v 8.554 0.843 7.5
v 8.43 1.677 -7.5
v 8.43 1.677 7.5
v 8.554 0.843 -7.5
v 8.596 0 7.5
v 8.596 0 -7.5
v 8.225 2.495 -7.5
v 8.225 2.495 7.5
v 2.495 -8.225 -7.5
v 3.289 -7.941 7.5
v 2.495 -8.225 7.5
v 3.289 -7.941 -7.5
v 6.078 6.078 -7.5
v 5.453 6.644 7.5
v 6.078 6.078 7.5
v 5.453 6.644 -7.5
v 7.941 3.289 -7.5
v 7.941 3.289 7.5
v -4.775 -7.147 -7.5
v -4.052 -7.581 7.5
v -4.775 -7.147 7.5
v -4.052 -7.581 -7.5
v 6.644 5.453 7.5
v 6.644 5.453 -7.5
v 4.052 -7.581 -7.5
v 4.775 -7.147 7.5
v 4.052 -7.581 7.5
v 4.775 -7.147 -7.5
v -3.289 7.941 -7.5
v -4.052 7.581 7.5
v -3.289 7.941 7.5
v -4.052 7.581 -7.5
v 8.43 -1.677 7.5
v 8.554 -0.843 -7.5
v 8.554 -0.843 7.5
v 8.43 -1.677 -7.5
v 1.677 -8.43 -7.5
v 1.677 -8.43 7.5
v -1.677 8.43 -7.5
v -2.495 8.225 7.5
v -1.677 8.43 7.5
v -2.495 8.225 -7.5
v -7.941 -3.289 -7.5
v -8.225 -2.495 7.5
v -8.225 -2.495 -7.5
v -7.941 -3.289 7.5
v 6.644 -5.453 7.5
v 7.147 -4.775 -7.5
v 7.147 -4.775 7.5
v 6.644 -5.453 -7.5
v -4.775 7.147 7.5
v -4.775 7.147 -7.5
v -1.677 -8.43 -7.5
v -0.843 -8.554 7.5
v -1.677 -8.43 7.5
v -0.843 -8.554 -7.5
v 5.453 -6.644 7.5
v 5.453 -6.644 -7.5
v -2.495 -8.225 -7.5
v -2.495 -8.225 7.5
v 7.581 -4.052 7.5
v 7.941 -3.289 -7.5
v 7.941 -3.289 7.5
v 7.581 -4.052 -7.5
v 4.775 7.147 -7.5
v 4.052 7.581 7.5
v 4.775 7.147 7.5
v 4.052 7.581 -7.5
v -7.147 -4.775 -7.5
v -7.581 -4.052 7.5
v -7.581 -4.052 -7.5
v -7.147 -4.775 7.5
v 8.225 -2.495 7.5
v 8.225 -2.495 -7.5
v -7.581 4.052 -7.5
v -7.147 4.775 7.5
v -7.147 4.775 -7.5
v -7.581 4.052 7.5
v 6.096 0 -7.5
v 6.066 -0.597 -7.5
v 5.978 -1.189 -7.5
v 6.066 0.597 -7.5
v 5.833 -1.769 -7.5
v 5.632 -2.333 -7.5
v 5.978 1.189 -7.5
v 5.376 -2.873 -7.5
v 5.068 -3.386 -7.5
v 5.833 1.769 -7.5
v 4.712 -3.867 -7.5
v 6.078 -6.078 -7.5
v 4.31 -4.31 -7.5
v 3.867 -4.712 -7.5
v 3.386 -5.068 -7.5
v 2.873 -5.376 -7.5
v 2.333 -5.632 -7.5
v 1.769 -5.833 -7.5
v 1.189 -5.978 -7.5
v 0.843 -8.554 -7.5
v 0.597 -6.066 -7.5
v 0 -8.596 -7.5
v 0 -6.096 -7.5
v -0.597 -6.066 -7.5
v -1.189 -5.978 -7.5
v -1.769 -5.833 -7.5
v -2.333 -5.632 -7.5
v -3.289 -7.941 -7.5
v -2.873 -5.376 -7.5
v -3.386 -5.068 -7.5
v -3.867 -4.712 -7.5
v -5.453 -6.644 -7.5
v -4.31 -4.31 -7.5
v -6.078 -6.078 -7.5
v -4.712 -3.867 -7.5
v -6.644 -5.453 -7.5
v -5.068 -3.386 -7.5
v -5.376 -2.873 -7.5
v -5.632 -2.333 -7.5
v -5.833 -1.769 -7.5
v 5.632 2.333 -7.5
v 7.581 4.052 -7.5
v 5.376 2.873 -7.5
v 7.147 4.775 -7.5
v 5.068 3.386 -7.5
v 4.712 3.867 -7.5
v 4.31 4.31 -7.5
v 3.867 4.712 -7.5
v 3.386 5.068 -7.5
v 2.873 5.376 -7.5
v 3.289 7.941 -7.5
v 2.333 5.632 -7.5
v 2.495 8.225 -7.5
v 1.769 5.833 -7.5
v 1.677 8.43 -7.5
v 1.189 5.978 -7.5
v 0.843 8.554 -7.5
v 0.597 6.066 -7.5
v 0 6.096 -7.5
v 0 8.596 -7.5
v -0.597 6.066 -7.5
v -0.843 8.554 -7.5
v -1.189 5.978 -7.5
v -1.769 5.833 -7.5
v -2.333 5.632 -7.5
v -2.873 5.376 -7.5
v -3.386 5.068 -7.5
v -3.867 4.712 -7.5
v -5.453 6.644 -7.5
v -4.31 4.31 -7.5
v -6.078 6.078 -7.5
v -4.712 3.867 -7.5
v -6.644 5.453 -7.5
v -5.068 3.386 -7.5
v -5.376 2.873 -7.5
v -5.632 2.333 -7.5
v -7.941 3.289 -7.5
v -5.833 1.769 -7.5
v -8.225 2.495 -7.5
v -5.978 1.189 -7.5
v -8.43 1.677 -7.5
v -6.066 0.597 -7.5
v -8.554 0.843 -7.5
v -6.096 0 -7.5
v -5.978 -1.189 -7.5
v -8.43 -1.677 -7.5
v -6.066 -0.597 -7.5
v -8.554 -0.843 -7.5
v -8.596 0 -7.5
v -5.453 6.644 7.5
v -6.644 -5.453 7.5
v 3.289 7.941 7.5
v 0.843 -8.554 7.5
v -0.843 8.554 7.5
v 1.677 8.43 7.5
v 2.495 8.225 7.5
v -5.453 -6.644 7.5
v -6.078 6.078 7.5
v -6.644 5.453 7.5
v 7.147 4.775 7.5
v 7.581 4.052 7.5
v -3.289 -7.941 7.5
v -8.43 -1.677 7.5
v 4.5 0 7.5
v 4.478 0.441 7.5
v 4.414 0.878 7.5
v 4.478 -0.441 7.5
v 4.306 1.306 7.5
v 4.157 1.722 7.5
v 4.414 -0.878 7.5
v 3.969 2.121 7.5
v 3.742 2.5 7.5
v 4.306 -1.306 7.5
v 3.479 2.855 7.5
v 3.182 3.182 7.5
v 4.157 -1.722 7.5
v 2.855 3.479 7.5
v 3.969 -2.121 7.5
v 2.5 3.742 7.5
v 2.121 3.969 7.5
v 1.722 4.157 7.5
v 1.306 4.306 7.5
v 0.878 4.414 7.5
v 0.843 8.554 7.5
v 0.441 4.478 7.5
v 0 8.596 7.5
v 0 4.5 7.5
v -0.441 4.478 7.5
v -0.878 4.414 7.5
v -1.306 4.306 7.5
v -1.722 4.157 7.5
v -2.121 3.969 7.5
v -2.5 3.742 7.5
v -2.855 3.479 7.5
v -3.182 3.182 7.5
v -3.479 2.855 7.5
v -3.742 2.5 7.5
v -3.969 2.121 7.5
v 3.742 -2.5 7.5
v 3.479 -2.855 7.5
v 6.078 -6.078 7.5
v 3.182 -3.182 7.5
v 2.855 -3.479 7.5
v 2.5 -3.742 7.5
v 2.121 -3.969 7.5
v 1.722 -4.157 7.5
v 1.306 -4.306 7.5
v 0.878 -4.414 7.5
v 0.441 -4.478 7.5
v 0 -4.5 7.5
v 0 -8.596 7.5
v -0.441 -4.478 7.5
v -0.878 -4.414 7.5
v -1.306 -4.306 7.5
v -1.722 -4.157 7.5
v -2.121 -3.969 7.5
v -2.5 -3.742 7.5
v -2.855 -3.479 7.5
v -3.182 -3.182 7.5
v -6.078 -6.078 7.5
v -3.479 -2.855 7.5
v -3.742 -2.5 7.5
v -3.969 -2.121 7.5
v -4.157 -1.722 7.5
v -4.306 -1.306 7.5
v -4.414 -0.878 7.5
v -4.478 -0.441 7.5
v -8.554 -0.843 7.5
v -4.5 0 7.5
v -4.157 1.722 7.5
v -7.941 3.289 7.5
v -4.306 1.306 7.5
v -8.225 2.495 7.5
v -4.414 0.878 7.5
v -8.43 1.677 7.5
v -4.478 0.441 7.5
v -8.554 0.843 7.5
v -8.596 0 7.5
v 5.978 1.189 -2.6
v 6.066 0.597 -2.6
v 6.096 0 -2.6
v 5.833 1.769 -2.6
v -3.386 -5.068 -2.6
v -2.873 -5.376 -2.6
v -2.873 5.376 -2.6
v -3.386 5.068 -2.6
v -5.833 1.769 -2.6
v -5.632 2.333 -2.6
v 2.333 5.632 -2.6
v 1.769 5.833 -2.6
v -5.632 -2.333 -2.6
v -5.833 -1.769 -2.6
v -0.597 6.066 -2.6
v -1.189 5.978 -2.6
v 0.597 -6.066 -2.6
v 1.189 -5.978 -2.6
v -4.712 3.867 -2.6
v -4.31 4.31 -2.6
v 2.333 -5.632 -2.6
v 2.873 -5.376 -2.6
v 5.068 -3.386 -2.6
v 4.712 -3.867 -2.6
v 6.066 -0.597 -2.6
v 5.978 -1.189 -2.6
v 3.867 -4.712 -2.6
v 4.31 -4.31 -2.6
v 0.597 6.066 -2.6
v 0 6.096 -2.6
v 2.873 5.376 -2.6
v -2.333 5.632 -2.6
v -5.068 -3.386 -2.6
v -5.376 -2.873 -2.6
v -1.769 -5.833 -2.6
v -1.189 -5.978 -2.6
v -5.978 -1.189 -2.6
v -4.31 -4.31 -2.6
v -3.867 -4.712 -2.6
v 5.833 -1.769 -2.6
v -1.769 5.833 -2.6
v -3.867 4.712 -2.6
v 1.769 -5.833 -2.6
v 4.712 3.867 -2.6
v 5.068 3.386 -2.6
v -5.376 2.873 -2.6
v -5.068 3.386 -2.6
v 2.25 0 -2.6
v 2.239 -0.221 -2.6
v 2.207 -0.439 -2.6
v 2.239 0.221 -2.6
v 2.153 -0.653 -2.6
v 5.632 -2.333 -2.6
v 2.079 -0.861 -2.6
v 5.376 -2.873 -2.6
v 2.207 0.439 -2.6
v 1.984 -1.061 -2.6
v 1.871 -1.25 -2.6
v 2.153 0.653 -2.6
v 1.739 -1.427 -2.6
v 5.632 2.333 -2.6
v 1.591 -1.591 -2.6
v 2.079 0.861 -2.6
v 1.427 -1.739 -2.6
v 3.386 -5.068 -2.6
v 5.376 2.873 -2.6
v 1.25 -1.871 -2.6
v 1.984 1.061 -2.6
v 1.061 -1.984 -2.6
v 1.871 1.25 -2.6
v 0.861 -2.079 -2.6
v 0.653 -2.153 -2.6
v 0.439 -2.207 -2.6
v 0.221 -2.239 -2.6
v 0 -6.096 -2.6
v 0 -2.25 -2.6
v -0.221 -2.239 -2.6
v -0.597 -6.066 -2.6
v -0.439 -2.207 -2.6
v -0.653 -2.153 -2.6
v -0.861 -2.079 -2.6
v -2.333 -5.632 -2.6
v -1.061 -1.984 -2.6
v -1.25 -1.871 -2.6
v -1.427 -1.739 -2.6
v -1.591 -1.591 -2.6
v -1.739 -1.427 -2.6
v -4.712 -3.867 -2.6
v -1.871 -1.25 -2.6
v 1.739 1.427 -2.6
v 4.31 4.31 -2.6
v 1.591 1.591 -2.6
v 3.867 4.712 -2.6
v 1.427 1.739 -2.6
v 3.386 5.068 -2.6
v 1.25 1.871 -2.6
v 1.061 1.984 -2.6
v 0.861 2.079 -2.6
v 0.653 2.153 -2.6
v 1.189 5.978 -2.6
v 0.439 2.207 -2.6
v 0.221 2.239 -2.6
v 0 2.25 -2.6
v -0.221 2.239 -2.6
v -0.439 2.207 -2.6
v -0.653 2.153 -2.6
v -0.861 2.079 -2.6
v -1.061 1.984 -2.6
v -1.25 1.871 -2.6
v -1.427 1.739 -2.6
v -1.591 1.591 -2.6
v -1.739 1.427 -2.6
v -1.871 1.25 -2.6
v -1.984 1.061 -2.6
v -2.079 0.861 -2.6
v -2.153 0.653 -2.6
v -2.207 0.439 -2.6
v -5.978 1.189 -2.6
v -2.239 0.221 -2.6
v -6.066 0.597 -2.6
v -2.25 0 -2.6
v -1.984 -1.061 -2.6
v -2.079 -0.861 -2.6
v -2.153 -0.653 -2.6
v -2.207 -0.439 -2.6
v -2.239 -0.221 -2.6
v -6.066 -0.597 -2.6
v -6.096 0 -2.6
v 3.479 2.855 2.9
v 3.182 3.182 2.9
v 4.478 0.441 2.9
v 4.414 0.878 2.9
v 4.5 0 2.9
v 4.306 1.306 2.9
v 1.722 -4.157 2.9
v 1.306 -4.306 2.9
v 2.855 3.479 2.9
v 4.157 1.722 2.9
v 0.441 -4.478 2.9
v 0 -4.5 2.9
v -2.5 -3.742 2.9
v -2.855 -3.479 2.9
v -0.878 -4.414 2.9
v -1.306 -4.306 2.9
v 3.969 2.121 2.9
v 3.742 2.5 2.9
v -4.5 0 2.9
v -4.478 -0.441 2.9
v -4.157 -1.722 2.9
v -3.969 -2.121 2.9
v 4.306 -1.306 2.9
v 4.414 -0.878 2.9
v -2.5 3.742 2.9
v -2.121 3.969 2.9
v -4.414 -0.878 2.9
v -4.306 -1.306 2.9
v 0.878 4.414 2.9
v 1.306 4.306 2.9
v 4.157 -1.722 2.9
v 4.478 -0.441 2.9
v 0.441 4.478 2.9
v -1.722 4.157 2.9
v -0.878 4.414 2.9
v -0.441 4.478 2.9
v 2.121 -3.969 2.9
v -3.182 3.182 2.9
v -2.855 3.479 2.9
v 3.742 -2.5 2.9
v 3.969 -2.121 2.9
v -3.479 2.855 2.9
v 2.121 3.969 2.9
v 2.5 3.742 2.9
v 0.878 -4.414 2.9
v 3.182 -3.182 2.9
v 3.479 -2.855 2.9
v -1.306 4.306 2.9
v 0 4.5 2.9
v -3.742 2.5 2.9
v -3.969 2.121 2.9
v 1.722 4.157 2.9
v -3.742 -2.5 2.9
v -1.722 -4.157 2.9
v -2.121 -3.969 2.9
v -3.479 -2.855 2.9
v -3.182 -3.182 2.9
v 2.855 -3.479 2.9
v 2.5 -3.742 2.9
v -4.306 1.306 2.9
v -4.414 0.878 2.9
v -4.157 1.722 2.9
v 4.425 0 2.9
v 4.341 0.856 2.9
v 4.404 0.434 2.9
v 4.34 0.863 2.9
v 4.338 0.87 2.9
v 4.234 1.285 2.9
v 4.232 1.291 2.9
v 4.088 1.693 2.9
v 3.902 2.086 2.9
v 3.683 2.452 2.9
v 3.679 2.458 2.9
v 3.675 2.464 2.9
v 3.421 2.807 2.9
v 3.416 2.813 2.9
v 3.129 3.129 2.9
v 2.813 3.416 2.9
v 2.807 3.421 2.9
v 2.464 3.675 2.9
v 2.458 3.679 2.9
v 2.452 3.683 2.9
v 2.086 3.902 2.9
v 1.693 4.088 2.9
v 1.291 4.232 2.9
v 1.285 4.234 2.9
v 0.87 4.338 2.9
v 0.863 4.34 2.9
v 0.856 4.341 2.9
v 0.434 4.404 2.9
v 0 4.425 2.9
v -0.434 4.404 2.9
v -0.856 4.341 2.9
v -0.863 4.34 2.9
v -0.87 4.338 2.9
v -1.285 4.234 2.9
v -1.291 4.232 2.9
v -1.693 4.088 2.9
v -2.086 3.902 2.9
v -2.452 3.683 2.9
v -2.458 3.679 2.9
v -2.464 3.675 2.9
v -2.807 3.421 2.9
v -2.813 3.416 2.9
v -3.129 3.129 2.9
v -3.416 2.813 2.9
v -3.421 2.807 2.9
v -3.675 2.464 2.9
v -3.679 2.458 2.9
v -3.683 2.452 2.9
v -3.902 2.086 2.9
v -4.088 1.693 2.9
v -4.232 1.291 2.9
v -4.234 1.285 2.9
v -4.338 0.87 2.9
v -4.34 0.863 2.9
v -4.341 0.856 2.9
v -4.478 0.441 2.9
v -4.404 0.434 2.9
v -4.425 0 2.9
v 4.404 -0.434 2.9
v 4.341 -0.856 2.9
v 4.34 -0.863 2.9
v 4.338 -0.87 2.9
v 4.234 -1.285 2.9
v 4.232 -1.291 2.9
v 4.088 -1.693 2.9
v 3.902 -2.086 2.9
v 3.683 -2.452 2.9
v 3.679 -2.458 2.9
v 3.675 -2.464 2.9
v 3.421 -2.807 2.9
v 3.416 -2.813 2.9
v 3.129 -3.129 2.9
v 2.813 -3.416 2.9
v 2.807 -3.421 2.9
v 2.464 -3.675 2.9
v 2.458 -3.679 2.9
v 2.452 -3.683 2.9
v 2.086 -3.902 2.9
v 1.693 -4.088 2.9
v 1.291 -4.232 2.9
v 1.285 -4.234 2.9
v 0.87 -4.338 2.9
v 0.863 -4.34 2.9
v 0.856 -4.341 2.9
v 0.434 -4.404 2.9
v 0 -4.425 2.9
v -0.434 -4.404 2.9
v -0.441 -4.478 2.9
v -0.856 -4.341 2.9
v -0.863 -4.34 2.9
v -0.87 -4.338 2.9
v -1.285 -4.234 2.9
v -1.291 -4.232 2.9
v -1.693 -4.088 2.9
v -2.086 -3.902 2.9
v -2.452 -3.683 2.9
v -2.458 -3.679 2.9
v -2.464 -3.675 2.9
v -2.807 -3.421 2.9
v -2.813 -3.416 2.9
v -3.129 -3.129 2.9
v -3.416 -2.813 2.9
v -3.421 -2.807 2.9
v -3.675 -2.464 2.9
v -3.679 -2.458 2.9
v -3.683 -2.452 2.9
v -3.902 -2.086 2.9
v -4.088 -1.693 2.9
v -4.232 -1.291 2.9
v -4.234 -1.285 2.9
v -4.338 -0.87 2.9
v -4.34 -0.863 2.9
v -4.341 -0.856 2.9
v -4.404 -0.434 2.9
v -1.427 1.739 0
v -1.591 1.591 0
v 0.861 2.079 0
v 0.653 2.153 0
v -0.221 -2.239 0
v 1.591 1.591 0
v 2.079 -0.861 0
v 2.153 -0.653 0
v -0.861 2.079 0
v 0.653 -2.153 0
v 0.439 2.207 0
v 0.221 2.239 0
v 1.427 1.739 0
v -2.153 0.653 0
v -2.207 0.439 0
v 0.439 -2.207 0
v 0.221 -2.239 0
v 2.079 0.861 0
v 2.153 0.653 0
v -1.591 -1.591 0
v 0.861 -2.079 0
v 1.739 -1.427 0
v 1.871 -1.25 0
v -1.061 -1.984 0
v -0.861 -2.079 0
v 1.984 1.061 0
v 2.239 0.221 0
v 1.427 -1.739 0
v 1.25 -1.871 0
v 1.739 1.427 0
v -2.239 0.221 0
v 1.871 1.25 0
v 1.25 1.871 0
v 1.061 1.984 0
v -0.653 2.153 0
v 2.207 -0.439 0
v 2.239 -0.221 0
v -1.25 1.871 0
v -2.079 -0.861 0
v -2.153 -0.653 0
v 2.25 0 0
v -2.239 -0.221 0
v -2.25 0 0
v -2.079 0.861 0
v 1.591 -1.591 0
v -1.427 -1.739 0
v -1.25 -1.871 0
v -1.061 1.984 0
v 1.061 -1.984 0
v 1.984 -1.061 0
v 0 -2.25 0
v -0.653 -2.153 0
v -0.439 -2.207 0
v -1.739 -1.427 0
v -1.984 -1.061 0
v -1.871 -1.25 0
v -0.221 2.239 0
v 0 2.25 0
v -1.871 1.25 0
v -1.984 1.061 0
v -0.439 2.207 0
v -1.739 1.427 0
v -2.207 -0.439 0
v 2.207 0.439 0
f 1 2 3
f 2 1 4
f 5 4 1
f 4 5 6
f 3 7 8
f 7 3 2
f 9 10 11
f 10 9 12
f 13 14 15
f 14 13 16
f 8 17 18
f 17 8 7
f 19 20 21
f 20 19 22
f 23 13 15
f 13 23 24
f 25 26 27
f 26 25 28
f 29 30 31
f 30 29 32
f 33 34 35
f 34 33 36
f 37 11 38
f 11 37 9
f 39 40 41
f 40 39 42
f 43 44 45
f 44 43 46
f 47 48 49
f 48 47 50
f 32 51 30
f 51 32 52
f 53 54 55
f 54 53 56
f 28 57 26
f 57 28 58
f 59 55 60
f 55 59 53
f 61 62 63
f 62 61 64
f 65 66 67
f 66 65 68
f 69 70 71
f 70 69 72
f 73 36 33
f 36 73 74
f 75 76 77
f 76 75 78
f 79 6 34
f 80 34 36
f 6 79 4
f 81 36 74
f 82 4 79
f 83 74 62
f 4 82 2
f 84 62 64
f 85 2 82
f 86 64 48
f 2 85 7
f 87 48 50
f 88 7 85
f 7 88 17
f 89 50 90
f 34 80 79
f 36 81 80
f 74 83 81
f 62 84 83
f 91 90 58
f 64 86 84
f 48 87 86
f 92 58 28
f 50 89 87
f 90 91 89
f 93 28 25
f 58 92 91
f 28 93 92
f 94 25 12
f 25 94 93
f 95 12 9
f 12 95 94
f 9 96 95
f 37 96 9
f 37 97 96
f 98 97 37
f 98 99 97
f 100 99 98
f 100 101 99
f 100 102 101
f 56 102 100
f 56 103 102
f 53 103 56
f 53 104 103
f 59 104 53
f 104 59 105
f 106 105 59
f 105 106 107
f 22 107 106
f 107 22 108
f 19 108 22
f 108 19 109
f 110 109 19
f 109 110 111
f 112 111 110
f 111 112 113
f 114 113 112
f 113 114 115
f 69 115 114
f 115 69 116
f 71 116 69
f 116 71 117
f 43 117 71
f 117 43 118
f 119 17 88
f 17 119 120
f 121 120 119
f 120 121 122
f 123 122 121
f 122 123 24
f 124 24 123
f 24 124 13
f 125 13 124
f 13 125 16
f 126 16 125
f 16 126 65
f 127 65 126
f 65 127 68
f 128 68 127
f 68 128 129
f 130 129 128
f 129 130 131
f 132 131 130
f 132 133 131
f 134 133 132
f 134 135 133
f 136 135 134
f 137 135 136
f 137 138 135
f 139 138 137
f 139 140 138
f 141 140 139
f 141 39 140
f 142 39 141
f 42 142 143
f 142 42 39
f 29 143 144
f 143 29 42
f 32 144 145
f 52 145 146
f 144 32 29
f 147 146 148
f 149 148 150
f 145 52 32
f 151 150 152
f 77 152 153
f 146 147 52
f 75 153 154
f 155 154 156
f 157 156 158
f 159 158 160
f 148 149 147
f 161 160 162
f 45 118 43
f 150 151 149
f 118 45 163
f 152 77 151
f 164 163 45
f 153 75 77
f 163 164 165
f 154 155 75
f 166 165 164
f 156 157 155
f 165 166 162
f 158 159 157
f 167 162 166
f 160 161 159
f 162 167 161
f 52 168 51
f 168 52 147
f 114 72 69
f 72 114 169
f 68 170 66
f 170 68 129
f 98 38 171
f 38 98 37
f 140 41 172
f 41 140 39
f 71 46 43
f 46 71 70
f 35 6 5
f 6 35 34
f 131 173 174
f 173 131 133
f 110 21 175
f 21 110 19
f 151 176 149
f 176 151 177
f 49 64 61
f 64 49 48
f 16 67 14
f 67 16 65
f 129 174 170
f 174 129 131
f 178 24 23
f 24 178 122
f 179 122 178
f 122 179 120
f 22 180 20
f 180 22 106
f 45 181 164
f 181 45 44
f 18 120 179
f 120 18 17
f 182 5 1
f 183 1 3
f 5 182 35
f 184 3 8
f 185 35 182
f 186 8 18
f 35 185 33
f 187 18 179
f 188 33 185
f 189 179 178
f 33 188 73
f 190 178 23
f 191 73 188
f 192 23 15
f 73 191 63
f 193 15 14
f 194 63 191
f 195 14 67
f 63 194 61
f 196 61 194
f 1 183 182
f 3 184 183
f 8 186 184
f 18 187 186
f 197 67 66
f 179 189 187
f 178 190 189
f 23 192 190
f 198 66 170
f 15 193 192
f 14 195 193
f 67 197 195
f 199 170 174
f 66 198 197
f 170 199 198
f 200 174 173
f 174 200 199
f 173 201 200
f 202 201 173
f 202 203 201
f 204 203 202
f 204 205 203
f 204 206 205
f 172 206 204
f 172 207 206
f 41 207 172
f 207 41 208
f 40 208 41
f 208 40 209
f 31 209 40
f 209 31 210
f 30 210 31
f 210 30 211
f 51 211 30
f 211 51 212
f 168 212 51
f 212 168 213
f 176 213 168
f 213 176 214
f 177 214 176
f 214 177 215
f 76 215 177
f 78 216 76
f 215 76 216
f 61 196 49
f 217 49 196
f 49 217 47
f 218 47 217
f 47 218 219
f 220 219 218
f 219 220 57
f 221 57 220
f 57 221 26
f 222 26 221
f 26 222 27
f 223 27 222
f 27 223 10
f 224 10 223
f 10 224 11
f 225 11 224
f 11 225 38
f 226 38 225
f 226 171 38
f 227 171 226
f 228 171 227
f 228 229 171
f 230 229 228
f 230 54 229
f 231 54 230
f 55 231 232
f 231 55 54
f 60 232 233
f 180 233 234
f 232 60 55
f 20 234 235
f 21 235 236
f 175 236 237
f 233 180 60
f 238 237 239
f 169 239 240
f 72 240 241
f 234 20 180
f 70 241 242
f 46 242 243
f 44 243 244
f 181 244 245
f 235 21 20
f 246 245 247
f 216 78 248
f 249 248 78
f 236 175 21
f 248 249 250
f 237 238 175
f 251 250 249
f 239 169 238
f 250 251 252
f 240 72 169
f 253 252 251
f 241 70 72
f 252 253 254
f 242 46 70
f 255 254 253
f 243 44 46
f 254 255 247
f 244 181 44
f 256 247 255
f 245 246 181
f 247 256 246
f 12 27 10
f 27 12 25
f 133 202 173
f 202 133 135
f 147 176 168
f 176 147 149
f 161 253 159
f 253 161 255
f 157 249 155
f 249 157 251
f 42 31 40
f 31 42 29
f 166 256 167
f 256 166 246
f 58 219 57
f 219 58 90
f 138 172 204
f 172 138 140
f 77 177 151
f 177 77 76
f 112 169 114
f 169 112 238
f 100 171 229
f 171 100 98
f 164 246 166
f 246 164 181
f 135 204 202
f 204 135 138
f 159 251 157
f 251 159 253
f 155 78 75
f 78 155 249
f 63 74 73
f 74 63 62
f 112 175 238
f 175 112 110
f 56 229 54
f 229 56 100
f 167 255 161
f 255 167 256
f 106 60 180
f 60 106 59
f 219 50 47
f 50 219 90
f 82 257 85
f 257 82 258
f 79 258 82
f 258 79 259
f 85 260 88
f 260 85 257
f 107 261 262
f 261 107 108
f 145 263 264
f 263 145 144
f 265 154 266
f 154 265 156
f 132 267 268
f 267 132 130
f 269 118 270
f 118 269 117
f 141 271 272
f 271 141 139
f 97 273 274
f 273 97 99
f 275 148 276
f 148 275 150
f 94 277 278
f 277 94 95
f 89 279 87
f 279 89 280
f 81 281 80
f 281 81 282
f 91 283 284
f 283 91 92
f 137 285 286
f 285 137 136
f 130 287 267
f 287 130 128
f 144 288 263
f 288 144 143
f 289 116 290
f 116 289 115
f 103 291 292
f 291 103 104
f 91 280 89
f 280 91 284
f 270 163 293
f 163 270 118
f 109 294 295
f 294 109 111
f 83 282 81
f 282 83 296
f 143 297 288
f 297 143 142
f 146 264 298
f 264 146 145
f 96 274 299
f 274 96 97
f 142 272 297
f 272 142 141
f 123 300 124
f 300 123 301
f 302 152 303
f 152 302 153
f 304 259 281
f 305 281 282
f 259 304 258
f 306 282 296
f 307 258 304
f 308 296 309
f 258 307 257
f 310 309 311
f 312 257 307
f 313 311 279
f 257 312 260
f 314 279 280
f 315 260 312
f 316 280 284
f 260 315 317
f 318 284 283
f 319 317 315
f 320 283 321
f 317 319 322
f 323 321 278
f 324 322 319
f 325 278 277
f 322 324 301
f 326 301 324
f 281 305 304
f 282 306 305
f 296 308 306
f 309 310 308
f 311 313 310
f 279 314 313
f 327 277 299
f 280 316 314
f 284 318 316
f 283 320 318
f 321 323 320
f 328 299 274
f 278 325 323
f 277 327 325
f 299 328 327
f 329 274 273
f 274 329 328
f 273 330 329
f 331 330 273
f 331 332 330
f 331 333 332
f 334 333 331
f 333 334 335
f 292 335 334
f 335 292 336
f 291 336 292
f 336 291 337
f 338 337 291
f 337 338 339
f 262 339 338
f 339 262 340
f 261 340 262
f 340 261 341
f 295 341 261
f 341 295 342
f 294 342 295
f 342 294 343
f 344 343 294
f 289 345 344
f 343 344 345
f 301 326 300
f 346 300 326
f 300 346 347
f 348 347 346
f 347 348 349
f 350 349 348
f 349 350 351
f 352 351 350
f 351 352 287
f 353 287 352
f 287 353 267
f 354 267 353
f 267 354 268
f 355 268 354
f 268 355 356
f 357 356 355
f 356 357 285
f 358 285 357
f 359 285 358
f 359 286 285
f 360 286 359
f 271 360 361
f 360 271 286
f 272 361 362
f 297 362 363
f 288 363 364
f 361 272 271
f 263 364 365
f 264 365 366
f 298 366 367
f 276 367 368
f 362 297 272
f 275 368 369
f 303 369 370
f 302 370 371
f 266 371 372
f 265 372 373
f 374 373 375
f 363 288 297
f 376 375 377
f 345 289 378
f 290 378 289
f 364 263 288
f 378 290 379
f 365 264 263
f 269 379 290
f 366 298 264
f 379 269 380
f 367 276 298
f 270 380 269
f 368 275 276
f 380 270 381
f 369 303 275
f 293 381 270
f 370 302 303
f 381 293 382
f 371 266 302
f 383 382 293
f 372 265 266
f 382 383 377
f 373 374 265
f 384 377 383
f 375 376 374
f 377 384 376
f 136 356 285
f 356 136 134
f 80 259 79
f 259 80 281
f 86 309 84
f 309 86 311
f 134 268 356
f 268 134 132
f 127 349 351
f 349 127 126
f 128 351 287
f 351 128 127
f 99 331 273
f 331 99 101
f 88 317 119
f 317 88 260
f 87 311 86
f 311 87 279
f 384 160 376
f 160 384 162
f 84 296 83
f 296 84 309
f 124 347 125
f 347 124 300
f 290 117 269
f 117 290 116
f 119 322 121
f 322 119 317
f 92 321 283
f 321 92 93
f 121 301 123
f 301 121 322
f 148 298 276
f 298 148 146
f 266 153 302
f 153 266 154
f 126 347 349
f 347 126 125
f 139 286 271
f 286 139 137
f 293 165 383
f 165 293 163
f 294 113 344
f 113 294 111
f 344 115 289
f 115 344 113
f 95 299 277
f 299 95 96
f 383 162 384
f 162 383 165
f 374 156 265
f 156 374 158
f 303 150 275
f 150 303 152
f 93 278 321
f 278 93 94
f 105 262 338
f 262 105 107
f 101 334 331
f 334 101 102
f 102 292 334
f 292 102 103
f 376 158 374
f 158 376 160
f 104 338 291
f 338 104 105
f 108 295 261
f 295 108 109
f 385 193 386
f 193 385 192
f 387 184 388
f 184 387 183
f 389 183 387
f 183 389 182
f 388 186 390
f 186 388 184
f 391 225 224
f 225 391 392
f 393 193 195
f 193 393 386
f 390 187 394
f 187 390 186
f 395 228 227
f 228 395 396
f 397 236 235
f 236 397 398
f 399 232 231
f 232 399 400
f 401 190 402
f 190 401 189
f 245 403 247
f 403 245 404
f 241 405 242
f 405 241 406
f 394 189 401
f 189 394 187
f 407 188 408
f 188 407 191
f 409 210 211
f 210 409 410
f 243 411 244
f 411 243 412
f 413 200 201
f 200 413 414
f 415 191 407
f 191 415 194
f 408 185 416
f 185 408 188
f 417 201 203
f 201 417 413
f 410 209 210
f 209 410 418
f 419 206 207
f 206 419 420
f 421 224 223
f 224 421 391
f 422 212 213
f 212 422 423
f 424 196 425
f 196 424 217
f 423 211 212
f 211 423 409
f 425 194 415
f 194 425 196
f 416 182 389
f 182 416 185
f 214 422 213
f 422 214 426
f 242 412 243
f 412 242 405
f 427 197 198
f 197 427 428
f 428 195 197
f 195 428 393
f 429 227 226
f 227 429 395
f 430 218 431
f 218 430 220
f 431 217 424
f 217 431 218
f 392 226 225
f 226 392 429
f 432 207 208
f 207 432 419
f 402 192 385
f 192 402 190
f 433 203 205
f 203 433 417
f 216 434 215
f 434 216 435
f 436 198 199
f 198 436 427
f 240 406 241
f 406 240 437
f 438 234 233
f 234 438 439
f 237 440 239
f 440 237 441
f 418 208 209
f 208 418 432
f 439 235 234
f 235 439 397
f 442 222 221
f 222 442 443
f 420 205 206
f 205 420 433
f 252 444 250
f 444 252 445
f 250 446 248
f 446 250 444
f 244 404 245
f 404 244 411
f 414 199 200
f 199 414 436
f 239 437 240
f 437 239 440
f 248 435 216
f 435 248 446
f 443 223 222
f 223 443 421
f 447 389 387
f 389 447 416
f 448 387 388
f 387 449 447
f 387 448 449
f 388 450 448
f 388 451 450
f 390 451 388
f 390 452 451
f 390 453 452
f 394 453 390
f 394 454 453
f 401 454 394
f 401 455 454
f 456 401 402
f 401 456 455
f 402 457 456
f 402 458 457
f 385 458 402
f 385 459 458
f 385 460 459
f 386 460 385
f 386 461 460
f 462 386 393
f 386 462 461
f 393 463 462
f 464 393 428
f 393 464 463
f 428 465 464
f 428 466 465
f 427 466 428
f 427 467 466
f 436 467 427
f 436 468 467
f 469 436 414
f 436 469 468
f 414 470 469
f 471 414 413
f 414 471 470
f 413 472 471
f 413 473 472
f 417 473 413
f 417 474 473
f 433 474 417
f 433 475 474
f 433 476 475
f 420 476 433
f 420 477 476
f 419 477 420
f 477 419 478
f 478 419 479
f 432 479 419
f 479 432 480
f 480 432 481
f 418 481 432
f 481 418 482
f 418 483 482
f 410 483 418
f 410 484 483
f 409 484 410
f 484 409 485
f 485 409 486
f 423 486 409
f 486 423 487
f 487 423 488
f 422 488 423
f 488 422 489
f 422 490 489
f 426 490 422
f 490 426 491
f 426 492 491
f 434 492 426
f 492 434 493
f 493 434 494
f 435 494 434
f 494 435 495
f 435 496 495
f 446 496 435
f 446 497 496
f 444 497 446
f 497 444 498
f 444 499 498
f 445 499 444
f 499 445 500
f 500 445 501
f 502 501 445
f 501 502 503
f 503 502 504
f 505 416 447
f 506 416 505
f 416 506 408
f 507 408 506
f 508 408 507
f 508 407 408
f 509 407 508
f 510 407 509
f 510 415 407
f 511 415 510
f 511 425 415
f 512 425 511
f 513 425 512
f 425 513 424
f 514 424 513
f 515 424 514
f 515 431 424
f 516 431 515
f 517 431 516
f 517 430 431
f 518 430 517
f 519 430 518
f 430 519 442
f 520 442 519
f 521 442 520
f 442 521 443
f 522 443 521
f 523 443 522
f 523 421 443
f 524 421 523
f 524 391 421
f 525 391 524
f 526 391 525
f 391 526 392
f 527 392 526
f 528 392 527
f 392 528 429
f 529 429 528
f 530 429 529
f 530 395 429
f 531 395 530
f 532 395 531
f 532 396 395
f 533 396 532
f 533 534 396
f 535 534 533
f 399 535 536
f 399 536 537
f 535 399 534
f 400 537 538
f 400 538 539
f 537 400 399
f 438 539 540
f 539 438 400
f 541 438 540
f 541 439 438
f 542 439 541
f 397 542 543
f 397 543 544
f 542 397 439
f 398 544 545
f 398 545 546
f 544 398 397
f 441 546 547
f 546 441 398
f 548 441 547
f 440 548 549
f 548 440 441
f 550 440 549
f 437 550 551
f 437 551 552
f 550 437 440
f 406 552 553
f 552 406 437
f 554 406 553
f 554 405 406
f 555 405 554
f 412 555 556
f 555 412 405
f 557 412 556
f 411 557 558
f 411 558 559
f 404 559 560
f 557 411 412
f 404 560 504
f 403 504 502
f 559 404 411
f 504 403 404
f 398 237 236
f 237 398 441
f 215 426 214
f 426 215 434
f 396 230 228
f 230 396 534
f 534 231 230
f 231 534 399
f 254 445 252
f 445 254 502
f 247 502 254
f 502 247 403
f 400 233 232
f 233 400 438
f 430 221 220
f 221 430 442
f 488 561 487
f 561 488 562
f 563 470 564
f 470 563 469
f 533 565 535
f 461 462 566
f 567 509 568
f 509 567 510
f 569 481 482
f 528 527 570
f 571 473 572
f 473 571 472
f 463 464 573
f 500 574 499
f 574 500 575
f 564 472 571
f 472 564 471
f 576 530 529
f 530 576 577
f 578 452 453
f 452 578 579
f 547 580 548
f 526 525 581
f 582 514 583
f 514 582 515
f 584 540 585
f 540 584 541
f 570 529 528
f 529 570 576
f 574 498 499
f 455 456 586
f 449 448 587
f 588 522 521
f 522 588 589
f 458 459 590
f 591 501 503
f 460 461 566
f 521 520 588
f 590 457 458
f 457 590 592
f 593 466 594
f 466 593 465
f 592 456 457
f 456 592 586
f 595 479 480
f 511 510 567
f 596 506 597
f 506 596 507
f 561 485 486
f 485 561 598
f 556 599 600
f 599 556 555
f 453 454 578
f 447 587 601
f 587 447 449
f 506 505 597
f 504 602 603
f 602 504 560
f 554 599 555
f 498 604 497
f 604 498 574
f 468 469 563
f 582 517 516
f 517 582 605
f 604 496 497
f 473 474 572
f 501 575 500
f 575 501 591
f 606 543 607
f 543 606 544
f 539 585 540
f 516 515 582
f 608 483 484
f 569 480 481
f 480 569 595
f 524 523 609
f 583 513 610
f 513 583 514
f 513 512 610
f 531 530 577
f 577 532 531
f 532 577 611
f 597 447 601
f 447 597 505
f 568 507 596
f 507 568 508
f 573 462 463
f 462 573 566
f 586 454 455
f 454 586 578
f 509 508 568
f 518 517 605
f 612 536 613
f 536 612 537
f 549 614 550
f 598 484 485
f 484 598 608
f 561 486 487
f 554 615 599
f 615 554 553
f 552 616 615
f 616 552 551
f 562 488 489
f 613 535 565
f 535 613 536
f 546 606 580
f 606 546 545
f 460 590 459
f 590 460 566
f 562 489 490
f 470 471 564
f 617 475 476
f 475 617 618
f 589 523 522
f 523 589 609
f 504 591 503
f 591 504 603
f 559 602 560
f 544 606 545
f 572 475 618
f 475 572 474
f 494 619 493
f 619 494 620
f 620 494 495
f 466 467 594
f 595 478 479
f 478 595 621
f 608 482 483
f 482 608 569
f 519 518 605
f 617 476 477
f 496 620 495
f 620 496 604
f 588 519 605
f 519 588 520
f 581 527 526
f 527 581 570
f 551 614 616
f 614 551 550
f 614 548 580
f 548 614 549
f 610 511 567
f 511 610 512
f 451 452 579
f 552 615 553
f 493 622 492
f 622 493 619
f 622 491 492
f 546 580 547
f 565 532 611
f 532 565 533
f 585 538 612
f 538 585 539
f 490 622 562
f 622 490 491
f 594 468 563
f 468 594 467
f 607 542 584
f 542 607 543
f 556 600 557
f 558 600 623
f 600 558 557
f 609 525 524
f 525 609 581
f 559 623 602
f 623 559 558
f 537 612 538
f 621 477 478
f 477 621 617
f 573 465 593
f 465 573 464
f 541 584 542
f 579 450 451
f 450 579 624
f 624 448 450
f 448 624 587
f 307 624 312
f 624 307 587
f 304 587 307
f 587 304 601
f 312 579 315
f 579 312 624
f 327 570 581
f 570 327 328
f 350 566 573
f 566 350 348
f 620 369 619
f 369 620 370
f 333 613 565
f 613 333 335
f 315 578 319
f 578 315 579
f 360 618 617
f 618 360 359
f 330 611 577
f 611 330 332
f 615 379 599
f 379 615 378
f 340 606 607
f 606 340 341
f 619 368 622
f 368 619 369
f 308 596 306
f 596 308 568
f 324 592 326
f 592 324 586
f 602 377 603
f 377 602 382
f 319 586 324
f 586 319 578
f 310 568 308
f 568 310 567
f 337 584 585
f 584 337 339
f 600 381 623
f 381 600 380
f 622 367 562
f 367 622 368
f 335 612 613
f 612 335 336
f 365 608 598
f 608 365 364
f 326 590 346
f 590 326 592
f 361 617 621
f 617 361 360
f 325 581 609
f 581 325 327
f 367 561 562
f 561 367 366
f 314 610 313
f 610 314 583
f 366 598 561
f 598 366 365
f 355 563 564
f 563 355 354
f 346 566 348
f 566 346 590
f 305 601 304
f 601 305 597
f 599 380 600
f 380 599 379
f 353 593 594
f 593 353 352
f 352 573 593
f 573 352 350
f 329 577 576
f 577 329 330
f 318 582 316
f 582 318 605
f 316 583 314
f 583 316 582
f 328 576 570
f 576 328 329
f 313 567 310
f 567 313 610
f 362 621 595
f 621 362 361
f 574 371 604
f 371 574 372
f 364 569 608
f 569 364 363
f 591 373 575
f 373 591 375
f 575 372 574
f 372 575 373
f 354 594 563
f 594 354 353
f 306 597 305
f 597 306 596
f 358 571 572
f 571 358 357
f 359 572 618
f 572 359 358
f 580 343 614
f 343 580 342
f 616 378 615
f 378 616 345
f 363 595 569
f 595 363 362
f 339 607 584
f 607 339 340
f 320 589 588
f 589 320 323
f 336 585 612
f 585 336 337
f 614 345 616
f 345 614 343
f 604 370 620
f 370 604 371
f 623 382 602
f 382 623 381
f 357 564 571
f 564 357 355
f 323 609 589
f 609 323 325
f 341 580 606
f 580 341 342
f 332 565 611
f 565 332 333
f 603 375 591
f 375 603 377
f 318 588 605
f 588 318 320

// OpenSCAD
$fn = 64;


Diam = 32/3.14 + 2;  // Diametro del pituto del botón
Largo = 10; // Cuánto adicional hay que alargar el pituto
DiamExt = Diam+5; // El diametro externo. El pituto va encastrado ADENTRO y atornillado
Profundidad = 5; // Cuanto el pituto va metido dentro del alargue este

//Tornillo
D_Cabeza   = 9; // Cabeza del tornillo
D_Tornillo = 4.5; // Cuerpo del tornillo

L_Tornillo = Profundidad +1;
L_Cabeza   = Largo + Profundidad + 1;

Transicion = 3;

module Tornillo (){

    translate([0,0,L_Cabeza/2 + Transicion-0.1])
    cylinder(d = D_Cabeza, h = L_Cabeza, center=true);
    translate([0,0,Transicion/2])
    cylinder(d2 = D_Cabeza, d1 = D_Tornillo, h = Transicion, center=true);
    translate([0,0,-L_Tornillo/2 + Transicion/2+0.1])
    cylinder(d = D_Tornillo, h = L_Tornillo, center=true);
}

module Alargue(){
    difference(){
        cylinder(d = DiamExt, h = Largo + Profundidad, center = true);
        translate([0,0,-Profundidad-0.1])
        cylinder(d = Diam, h = Profundidad, center = true);
    }

}

module Pituto(){
    difference(){
        Alargue();
        Tornillo();
    }
}

Pituto();
